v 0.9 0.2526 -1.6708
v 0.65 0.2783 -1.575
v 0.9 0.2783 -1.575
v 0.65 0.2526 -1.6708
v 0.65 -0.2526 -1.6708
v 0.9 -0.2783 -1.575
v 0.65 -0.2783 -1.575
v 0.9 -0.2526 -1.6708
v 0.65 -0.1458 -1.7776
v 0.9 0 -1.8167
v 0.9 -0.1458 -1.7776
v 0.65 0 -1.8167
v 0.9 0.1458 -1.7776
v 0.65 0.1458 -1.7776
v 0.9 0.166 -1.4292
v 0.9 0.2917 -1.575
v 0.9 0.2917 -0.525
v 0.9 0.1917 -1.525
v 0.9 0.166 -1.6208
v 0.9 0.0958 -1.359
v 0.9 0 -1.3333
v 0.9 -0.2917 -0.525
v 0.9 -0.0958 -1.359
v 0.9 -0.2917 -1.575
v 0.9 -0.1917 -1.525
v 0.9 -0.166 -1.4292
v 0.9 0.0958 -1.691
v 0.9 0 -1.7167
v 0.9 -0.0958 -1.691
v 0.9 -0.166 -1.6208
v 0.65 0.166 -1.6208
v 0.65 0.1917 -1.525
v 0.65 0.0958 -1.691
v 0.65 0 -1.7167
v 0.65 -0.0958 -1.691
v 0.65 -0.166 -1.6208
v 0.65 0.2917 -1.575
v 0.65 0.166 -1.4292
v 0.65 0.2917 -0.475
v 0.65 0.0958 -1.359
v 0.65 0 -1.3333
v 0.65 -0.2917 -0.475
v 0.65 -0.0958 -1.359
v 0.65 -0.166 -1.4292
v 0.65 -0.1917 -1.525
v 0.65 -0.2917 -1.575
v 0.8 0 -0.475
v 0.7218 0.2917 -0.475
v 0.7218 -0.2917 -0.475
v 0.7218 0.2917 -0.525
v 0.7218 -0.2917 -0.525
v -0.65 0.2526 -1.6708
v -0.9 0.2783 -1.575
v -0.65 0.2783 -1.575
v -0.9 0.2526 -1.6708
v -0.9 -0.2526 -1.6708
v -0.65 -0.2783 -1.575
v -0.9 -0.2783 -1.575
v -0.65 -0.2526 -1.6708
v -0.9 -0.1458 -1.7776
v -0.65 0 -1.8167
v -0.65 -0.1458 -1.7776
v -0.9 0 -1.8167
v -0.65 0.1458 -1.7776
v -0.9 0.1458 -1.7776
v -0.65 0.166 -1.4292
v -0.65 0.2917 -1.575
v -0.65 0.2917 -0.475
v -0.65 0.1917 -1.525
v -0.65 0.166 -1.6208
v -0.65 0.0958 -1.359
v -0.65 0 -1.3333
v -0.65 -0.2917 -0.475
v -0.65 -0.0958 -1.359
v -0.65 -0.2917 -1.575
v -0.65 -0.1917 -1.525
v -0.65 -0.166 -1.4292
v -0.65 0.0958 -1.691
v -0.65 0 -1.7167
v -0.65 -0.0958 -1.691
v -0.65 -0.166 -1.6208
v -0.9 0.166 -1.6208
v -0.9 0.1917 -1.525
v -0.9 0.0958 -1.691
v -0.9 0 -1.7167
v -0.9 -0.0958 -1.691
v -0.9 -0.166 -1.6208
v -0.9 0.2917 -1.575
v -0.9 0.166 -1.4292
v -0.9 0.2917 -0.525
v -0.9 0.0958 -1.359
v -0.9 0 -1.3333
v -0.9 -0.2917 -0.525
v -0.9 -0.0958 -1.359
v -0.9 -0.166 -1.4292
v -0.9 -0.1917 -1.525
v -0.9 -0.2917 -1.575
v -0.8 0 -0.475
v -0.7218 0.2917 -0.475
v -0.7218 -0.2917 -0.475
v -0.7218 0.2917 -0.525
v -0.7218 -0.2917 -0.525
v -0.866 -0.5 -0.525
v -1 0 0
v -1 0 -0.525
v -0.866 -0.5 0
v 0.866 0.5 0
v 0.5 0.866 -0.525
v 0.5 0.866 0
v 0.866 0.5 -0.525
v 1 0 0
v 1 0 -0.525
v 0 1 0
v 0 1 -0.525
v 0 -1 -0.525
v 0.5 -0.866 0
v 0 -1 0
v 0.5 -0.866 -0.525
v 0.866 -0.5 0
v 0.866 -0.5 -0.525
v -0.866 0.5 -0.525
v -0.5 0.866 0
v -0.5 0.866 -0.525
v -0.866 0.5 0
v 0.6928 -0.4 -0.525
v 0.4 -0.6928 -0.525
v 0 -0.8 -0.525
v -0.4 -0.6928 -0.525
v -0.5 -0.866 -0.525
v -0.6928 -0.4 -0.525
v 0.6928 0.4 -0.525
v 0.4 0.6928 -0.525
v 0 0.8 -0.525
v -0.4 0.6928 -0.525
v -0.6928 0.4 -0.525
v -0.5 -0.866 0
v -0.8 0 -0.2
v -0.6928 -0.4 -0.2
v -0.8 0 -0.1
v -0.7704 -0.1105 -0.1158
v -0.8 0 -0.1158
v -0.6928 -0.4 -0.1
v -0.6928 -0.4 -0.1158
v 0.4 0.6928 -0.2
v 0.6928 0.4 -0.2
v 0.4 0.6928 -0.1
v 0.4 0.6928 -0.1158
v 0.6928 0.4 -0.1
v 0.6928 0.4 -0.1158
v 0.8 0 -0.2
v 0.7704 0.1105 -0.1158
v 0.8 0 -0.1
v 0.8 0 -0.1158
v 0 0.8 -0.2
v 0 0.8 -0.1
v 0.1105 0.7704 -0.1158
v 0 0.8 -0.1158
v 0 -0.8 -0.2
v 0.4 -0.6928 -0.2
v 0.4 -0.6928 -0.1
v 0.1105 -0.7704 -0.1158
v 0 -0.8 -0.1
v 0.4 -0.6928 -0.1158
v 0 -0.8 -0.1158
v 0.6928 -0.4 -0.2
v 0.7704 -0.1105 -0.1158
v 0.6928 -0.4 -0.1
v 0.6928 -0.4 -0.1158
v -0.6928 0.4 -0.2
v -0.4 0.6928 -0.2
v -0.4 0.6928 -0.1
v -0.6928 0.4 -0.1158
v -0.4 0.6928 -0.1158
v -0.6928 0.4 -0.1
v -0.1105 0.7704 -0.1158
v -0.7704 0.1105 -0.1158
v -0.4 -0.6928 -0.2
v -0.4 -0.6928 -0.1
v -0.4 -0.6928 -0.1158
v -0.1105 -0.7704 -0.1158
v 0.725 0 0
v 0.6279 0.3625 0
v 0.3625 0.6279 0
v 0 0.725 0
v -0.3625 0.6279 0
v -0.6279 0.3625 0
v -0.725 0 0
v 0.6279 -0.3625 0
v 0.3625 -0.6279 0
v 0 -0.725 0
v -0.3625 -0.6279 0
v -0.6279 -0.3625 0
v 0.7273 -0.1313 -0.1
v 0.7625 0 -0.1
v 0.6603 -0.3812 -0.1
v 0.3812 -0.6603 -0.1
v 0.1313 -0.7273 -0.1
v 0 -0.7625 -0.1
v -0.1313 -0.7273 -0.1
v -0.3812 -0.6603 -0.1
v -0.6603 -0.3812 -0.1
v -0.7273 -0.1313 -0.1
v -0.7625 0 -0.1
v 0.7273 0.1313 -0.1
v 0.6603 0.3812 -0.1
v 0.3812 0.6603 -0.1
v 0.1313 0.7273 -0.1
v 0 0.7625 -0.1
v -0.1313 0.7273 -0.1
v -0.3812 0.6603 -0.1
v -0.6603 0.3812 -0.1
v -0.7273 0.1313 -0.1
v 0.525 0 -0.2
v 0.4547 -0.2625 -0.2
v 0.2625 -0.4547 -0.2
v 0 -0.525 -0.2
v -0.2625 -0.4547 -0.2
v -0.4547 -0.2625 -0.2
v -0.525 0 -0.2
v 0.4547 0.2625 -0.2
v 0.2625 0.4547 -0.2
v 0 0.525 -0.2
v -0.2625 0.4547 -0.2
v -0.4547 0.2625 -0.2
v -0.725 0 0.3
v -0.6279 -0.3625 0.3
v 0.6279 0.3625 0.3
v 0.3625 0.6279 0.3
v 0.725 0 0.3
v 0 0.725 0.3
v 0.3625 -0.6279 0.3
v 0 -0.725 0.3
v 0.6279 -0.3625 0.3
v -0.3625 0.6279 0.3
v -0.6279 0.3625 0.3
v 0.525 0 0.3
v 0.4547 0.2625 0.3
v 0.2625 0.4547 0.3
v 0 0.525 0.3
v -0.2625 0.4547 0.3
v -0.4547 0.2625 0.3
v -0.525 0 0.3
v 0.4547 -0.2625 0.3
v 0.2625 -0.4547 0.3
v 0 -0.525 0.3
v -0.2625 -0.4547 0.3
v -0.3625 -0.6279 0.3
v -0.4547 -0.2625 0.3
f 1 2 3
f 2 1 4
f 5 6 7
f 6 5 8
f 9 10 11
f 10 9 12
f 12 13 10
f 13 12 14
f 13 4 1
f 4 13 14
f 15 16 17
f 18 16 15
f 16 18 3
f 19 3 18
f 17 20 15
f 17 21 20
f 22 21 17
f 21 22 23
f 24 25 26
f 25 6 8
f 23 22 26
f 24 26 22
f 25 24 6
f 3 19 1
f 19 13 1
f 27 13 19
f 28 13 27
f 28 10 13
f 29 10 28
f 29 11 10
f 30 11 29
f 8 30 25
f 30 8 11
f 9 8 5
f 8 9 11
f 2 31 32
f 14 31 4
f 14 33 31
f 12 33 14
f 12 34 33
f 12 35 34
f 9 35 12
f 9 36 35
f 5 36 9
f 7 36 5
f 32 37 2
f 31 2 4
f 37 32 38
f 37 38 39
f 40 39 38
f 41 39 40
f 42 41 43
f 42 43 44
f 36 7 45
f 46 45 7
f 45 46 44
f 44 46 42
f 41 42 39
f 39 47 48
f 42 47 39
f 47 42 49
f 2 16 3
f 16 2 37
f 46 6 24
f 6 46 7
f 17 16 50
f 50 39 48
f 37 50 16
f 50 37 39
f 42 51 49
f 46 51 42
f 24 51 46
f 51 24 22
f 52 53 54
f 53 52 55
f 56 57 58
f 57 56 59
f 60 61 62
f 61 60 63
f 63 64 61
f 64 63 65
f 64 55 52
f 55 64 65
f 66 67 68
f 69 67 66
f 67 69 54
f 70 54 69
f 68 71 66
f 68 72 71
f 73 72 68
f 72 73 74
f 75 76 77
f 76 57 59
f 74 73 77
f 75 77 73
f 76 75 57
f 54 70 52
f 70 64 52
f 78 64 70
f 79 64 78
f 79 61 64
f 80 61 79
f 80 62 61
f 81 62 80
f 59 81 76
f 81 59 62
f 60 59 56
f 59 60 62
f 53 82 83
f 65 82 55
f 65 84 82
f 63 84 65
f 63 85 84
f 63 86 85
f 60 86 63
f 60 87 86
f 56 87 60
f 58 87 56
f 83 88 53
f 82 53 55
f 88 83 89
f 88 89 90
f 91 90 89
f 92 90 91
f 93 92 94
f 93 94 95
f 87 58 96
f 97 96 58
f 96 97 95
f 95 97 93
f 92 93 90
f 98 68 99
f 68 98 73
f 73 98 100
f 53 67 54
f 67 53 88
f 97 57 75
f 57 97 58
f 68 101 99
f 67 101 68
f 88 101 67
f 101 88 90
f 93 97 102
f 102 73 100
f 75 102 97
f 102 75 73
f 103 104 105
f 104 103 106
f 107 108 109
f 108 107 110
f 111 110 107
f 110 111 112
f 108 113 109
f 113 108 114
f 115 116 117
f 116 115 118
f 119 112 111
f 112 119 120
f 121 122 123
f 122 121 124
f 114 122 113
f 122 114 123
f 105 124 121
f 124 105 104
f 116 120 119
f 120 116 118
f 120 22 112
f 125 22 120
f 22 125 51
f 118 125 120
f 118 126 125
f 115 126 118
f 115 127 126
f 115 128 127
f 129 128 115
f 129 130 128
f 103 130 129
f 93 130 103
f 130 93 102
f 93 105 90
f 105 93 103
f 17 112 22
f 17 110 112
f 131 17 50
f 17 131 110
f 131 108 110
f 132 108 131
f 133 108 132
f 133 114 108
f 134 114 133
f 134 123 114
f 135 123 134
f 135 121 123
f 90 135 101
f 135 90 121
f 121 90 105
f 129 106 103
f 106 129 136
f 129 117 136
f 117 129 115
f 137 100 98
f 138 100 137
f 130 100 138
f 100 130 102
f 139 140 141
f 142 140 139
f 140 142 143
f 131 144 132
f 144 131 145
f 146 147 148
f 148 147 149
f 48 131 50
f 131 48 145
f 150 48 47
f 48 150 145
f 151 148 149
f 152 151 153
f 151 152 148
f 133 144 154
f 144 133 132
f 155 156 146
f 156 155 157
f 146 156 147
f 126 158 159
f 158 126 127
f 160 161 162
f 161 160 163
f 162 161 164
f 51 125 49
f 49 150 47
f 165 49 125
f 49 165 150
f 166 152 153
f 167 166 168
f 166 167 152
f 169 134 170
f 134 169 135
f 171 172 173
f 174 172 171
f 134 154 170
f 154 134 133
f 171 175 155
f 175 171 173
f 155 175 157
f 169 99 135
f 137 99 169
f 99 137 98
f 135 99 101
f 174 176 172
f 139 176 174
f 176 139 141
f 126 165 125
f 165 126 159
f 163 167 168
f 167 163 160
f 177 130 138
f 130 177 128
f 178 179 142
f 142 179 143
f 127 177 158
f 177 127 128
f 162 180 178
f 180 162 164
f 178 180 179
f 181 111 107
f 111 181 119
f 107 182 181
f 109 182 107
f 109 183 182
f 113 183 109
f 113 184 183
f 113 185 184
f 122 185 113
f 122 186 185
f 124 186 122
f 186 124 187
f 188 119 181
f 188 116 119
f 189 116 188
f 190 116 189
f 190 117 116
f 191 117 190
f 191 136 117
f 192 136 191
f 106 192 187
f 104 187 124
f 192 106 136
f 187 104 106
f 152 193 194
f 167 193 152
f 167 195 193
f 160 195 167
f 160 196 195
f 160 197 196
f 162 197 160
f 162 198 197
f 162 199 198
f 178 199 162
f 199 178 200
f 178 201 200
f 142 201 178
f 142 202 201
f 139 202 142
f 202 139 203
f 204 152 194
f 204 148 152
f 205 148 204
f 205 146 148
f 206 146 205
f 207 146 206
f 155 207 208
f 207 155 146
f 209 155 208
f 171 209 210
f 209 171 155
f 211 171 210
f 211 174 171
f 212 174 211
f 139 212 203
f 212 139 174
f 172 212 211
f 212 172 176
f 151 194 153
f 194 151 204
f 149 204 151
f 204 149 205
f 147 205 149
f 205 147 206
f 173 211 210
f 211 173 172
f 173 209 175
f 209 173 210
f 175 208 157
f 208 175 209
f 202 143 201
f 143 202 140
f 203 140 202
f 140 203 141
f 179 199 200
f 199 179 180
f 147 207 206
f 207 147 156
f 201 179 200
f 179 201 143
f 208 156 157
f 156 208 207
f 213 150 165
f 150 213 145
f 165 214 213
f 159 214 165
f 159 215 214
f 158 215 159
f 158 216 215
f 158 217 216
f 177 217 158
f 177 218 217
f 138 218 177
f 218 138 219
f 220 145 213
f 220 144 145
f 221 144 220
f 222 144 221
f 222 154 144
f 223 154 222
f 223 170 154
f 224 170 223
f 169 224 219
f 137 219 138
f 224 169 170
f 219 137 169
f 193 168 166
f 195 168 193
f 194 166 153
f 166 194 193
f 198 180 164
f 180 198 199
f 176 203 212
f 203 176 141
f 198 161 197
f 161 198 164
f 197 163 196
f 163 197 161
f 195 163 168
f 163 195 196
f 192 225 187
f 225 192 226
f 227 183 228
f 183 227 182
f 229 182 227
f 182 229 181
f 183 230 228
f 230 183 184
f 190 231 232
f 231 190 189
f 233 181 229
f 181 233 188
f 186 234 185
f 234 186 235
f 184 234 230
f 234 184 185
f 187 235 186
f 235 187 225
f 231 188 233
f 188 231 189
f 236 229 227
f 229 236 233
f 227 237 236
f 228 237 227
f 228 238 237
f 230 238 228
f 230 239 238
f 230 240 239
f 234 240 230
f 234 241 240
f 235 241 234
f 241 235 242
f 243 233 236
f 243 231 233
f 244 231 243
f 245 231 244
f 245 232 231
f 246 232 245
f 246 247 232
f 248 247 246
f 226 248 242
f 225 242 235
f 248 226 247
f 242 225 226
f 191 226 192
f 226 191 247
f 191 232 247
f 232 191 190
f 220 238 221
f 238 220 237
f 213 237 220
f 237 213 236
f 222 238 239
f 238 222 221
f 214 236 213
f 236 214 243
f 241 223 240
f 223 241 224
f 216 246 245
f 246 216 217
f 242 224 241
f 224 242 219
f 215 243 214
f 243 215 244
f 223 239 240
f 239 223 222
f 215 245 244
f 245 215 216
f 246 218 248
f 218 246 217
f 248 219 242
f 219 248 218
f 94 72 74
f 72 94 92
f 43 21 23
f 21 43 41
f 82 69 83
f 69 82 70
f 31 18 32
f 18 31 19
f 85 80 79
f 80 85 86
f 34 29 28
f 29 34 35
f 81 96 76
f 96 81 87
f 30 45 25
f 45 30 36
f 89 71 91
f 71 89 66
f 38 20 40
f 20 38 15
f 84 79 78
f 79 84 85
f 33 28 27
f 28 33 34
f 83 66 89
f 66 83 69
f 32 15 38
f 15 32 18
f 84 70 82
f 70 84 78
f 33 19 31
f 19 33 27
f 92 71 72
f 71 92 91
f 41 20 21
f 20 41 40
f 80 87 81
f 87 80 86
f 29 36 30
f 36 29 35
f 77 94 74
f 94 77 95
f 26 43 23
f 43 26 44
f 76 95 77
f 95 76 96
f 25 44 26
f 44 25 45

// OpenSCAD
tolerance=0.075;
hole_radius=0.075;
grid_hole_radius=0.075;
outer_radius=1;
thickness=0.2;
hole_attach_height=0.075;
attach_thickness=0.1;
bottom_rotation_height=1.8875;
top_rotation_height=1.525;
next_hole_radius=0.075;
next_hole_attach_height=0.075;
next_inner=0.8;
max_turn=90.0;
min_turn=90.0;
hole_twist=45.0;

//parameters that don't have to be defined explicitly
eps = tolerance/100;
inner_radius = outer_radius - thickness;
axle_offset = attach_thickness;
bottom_joint_attach_radius = outer_radius - hole_attach_height - grid_hole_radius*2 - thickness;
fn = 12;
fnh = 6;

//solve for b = axle height
max_turn_b = outer_radius / tan((180 - max_turn)/2);
min_turn_b = outer_radius / tan((180 - min_turn)/2);
axle_radius = bottom_joint_attach_radius/3;

grid_hole_height = hole_radius*2 + hole_attach_height * 2;
bottom_joint_grid_clearance = bottom_rotation_height - (hole_attach_height*2 + hole_radius*2 + grid_hole_height + max_turn_b + attach_thickness);

module angled_cylinder(angle_deg_y, _h, _r, angle_deg_x = 0) {
    rotate([angle_deg_x, angle_deg_y, 0]) { // Rotate the cylinder 
            cylinder(h = _h, r = _r, center = true, $fn = fnh);
        }
}

module joint_top() {
    operating_height = hole_attach_height*2 + attach_thickness + hole_radius*2 + grid_hole_height + bottom_joint_grid_clearance + max_turn_b;
    
    top_attach_height = axle_offset + axle_radius + max_turn_b;
    cyl_height = top_rotation_height - max_turn_b;

    difference() {
        translate([0,0, operating_height]) 
        difference() {
            union() {
                translate([0,0,- axle_radius - axle_offset + top_attach_height/2]) 
                {
                    
                    //attach points
                    axle_attach_thickness = outer_radius - thickness/2 - bottom_joint_attach_radius - tolerance ;
                    
                    attach_distance = bottom_joint_attach_radius + axle_attach_thickness/2 + tolerance;

                    translate([attach_distance, 0, 0]) {
                        translate([0,0,-top_attach_height/2 + axle_radius + axle_offset])
                        rotate([0,90,0])
                        cylinder(h=axle_attach_thickness,r=axle_radius + axle_offset,center=true, $fn = fn);
                        translate([0,0,(axle_radius + axle_offset)/2])
                    cube([axle_attach_thickness, (axle_radius + axle_offset)*2, top_attach_height - axle_offset - axle_radius + attach_thickness],center=true);
                    }
                    
                    translate([-attach_distance, 0, 0]) {
                        translate([0,0,-top_attach_height/2 + axle_radius + axle_offset])
                        rotate([0,90,0])
                        cylinder(h=axle_attach_thickness,r=axle_radius + axle_offset,center=true, $fn = fn);
                        translate([0,0,(axle_radius + axle_offset)/2])
                    cube([axle_attach_thickness, (axle_radius + axle_offset)*2, top_attach_height - axle_offset - axle_radius + attach_thickness],center=true);
                    }  
                    
                    //outer cylinder
                    translate([0,0,top_attach_height/2]) {
                        difference() {
                            cylinder(h=cyl_height,r=outer_radius,$fn=fn);
                            translate([0,0,-eps/2])
                            cylinder(h=cyl_height + eps,r=inner_radius,$fn=fn);
                        }
                        
                        //enforce min turn
                        translate([0,0,-(max_turn_b - min_turn_b)])
                        difference() {
                            cylinder(h=max_turn_b - min_turn_b,r=outer_radius,$fn=fn);
                            
                            translate([-outer_radius,-outer_radius,-eps/2])
                            cube([outer_radius*2,outer_radius - axle_radius - axle_offset + eps/2,max_turn_b - min_turn_b + eps]);
                            
                            translate([0,0,-eps/2])
                            cylinder(h=max_turn_b - min_turn_b + eps,r=inner_radius,$fn=fn);
                       }
                    }       
                } 
                
                
                //attachment segment
                translate([0,0,cyl_height + max_turn_b])
                difference() {
                        union() {
                            //attachment for smaller cylinder
                            translate([0,0,-attach_thickness])
                            cylinder(h=attach_thickness, r=outer_radius, $fn=fn);
                            translate([0,0,-attach_thickness*2])
                            cylinder(h=attach_thickness*2, r1=outer_radius, r2=next_inner - tolerance - thickness, $fn=fn);
                            
                            //small cylinder
                            cylinder(h=next_hole_radius*2 + next_hole_attach_height * 2, r = next_inner - tolerance, $fn=fn);
                        }
                        
                        //shelling
                        translate([0,0, -attach_thickness*2 - eps/2])
                        cylinder(h=next_hole_radius*2 + next_hole_attach_height * 2 + attach_thickness*2 + eps, r = min(inner_radius, next_inner - tolerance - thickness), $fn=fn);
                        
                        //holes for screws
//                        translate([0,0,next_hole_attach_height + next_hole_radius]) {
//                            angled_cylinder(0, (next_inner + thickness + eps) * 2,  next_hole_radius, 90);
//                            angled_cylinder(90, (next_inner + thickness + eps) * 2, next_hole_radius, 0);
//                        }
                    }

            }
            
            //holes for string routing
//             translate([0,-inner_radius + tolerance,max_turn_b]) 
//            rotate([90,0,0])
//            {
//                cylinder(h=thickness + inner_radius + tolerance,r=grid_hole_radius,$fn=fn);
//                translate([0,hole_attach_height + grid_hole_radius*2,0])
//                cylinder(h=thickness + inner_radius + tolerance,r=grid_hole_radius,$fn=fn);
//
//            }
//
//            translate([0,outer_radius + tolerance,min_turn_b])
//            rotate([90,0,0])
//            {
//                cylinder(h=thickness + inner_radius + tolerance,r=grid_hole_radius,$fn=fn);
//                translate([0,hole_attach_height + grid_hole_radius*2,0])
//                cylinder(h=thickness + inner_radius + tolerance,r=grid_hole_radius,$fn=fn);
//
//            }
             

        }

        //axle hole
        translate([0,0,operating_height])
        rotate([0,90,0])
        cylinder(h=outer_radius*2,r=axle_radius,center=true,$fn=fn);
        
    }
}

translate([0,0,-(bottom_rotation_height + top_rotation_height)])
joint_top();
